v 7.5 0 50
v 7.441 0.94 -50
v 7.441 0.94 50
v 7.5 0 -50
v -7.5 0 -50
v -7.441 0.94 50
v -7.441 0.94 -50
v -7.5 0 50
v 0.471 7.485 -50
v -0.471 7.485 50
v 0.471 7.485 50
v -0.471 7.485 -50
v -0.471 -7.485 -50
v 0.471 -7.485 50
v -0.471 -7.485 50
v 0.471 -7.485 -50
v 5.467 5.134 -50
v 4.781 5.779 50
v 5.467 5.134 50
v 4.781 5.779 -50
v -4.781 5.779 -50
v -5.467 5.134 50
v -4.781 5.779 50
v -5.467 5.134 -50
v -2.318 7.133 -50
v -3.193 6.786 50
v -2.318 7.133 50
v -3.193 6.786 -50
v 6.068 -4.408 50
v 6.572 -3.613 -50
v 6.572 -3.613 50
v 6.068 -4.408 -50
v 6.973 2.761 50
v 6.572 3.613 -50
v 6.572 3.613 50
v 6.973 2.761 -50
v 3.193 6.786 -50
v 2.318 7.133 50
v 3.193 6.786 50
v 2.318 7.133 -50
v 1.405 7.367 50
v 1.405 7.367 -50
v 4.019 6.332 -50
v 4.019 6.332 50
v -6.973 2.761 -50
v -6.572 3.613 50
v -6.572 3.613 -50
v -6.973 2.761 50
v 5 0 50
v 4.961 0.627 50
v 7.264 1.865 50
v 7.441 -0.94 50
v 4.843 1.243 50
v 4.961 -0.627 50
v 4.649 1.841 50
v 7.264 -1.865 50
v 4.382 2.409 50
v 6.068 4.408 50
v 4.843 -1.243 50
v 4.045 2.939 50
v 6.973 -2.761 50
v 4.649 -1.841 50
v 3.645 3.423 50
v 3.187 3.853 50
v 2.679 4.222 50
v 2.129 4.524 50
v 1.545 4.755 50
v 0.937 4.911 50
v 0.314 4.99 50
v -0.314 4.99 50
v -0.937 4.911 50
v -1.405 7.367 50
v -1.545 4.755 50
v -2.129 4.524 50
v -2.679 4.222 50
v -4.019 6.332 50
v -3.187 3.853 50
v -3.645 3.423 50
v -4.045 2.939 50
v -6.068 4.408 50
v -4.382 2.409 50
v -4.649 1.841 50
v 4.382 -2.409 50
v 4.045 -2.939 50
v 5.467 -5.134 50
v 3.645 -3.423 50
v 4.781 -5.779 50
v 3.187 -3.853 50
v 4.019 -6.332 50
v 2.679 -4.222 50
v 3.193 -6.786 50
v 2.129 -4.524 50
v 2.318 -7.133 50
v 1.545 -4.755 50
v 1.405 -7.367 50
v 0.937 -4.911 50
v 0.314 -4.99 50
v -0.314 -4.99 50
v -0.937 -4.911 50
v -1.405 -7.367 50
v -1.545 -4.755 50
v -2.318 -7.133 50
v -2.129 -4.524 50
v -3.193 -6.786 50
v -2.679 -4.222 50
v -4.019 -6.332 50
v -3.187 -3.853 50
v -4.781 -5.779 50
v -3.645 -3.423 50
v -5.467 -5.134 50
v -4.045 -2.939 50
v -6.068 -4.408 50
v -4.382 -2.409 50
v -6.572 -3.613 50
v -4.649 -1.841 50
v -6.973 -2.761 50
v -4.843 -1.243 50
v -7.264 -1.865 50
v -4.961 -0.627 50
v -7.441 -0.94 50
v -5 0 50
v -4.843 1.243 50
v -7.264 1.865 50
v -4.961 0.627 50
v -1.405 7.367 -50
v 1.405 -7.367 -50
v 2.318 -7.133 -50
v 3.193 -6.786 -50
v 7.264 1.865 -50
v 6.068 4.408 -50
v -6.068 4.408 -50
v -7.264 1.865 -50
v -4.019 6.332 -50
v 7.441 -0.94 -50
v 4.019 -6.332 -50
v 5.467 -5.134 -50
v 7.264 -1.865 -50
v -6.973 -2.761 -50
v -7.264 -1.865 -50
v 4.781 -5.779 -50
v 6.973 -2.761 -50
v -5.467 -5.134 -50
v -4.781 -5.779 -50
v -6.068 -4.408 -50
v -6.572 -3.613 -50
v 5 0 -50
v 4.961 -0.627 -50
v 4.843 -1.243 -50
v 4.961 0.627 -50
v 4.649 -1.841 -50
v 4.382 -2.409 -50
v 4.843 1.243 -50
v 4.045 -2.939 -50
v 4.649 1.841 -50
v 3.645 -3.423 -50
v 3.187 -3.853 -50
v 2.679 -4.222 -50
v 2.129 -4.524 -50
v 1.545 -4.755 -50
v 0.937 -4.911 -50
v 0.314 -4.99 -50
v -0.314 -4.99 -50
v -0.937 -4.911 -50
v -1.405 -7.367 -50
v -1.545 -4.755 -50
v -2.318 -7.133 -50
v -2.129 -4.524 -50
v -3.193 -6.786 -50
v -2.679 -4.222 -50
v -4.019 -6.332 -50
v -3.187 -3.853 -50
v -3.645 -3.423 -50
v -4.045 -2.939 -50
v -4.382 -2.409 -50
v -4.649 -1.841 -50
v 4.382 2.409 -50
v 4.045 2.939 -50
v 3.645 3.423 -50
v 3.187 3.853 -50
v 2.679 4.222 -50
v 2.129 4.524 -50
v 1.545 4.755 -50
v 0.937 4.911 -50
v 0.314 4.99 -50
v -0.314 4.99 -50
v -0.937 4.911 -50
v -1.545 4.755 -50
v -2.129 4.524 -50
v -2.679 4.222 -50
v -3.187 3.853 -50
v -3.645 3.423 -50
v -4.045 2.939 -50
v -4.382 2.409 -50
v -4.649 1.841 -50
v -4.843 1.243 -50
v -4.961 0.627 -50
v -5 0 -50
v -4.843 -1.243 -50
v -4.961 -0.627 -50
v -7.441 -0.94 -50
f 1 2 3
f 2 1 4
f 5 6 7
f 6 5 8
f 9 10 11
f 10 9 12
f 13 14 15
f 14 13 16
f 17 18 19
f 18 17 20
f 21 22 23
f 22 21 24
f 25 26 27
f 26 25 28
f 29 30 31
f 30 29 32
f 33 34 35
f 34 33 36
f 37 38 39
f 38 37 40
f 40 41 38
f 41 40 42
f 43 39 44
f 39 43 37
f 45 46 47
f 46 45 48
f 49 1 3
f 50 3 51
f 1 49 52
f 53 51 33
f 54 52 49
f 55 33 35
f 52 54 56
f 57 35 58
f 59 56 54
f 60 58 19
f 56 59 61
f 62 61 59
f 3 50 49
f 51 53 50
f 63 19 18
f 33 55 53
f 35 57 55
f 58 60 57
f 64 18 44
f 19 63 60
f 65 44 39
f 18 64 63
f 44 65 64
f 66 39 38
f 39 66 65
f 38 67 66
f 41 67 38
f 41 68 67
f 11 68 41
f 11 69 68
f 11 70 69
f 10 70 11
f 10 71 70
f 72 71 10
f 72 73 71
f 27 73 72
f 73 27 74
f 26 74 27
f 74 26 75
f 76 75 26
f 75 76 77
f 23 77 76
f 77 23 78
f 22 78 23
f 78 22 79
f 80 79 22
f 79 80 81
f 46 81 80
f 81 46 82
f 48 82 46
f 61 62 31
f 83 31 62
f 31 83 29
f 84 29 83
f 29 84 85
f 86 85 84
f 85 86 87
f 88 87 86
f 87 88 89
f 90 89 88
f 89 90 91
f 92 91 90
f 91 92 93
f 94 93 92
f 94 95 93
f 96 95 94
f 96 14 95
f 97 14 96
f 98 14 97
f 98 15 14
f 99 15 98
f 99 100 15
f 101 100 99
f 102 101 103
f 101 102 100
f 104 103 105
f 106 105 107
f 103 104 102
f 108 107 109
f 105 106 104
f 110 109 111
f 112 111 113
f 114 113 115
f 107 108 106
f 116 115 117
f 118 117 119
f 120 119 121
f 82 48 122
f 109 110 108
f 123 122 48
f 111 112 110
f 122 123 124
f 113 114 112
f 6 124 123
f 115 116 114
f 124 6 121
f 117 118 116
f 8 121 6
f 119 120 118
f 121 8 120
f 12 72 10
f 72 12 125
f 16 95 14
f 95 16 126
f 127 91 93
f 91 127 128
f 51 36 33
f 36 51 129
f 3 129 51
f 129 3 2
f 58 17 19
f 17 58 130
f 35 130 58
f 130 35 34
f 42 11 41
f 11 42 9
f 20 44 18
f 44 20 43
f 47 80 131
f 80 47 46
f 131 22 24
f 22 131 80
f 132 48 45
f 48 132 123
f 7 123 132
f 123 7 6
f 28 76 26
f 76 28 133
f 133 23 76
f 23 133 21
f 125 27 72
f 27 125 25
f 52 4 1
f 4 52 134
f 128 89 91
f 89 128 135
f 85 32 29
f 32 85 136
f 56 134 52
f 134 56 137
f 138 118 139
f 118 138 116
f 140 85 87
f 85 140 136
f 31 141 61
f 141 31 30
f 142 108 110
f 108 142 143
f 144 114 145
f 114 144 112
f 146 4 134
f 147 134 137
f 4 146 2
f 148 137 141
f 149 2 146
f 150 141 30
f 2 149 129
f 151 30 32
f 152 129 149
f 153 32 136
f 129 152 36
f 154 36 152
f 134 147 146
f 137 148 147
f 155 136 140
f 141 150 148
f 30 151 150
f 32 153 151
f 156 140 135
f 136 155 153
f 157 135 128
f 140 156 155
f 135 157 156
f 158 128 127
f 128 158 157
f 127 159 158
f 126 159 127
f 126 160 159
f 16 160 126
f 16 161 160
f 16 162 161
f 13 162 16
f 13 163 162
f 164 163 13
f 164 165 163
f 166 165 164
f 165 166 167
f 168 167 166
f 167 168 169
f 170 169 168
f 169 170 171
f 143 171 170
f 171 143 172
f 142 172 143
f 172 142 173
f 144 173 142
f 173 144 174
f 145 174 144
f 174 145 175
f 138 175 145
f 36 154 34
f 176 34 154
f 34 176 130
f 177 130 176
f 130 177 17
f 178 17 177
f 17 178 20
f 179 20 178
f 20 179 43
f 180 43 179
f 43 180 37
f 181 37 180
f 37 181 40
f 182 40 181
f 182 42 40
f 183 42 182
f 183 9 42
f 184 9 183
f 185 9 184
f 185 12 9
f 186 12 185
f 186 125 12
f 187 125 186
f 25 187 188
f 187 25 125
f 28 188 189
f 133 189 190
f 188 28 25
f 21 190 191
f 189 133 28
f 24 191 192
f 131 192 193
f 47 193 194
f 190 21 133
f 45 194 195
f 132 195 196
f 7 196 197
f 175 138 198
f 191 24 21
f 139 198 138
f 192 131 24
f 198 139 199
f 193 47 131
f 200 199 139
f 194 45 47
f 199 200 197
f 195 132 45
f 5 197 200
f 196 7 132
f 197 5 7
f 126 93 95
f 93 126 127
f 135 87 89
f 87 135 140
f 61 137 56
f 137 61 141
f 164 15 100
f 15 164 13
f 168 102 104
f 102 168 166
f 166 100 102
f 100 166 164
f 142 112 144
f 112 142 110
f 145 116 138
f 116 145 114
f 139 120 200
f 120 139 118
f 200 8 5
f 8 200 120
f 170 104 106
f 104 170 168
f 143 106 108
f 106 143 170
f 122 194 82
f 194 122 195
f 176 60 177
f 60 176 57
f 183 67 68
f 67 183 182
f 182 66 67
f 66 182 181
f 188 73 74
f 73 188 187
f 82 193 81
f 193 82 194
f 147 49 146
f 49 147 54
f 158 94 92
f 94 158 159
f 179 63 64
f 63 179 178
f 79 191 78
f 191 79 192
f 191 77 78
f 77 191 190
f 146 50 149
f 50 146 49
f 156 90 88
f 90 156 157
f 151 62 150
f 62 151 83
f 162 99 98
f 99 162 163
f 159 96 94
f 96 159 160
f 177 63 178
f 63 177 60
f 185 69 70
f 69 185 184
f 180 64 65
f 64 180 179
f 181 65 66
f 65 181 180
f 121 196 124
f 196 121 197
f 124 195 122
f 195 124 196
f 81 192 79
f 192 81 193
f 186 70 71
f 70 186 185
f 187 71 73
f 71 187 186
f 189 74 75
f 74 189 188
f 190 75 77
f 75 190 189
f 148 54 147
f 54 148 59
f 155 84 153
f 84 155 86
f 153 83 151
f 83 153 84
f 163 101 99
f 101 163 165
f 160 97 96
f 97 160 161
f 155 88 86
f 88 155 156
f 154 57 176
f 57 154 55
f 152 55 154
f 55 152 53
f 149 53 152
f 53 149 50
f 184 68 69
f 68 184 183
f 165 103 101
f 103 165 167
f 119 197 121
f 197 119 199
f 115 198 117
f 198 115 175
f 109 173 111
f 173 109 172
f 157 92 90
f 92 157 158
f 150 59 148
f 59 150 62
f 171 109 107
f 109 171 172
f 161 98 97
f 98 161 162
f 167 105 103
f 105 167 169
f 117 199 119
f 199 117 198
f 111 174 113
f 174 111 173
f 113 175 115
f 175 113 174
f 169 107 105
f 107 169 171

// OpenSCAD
$fn = 50;


difference() {
	union() {
		translate(v = [0, 0, -50.0000000000]) {
			cylinder(h = 100, r = 7.5000000000);
		}
	}
	union() {
		translate(v = [0, 0, -100.0000000000]) {
			cylinder(h = 200, r = 5.0000000000);
		}
	}
}
